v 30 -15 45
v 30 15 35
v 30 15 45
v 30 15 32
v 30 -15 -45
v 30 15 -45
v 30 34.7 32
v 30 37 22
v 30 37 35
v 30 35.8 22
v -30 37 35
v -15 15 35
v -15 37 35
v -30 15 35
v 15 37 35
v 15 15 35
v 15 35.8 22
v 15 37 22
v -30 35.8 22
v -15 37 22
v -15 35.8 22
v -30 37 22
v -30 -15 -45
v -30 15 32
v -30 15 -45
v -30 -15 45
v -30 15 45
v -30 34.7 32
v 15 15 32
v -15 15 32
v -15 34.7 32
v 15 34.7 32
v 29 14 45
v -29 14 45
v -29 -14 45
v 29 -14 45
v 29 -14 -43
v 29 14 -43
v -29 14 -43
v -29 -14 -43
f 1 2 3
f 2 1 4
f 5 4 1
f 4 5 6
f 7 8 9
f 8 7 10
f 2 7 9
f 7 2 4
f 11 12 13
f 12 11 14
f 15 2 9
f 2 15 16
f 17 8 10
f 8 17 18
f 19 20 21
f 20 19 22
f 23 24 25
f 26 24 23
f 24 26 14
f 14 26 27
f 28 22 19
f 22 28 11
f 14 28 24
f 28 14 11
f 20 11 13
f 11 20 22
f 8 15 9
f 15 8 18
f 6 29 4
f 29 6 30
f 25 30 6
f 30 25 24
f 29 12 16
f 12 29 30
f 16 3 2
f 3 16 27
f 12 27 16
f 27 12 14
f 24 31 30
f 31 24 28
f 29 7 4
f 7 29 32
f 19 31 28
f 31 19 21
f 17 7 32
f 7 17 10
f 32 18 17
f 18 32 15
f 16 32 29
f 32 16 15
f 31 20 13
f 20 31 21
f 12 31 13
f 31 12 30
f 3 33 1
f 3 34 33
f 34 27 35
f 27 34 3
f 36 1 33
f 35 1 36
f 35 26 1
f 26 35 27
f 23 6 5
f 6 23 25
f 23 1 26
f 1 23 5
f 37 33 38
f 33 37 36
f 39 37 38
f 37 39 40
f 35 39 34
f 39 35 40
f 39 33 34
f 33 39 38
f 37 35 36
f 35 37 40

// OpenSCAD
height = 90;
depth = 30;
width = 60;
wallThickness = 1;
bottomThickness = 2;

difference(){
	cube([width, depth, height], center=true);
	translate([0, 0, bottomThickness])
		cube([width-2*wallThickness, 30-2*wallThickness, height], center=true);
}

translate([0, 0, height/2-15])
	difference(){
		clipInnerHeight = 10;
		clipTopThickness = 3;
		clipOutterHeight = clipInnerHeight+clipTopThickness;
		clipOutterDepth = 22;
		
		translate([0, depth/2+clipOutterDepth/2, -clipTopThickness/2])
			cube([width, clipOutterDepth, clipOutterHeight], center=true);
		
		#translate([-width/2, depth/2, -clipTopThickness]){
			hull(){
				translate([0, 0, clipInnerHeight/2])
					cube([width, 19.7, 1e-4]);
				translate([0, 0, -clipInnerHeight/2])
					cube([width, 20.8, 1e-4]);
			}
		}
			
		#translate([0, depth/2+clipOutterDepth/2, -clipTopThickness/2])
			cube([width/2, clipOutterDepth, clipOutterHeight], center=true);
	}
